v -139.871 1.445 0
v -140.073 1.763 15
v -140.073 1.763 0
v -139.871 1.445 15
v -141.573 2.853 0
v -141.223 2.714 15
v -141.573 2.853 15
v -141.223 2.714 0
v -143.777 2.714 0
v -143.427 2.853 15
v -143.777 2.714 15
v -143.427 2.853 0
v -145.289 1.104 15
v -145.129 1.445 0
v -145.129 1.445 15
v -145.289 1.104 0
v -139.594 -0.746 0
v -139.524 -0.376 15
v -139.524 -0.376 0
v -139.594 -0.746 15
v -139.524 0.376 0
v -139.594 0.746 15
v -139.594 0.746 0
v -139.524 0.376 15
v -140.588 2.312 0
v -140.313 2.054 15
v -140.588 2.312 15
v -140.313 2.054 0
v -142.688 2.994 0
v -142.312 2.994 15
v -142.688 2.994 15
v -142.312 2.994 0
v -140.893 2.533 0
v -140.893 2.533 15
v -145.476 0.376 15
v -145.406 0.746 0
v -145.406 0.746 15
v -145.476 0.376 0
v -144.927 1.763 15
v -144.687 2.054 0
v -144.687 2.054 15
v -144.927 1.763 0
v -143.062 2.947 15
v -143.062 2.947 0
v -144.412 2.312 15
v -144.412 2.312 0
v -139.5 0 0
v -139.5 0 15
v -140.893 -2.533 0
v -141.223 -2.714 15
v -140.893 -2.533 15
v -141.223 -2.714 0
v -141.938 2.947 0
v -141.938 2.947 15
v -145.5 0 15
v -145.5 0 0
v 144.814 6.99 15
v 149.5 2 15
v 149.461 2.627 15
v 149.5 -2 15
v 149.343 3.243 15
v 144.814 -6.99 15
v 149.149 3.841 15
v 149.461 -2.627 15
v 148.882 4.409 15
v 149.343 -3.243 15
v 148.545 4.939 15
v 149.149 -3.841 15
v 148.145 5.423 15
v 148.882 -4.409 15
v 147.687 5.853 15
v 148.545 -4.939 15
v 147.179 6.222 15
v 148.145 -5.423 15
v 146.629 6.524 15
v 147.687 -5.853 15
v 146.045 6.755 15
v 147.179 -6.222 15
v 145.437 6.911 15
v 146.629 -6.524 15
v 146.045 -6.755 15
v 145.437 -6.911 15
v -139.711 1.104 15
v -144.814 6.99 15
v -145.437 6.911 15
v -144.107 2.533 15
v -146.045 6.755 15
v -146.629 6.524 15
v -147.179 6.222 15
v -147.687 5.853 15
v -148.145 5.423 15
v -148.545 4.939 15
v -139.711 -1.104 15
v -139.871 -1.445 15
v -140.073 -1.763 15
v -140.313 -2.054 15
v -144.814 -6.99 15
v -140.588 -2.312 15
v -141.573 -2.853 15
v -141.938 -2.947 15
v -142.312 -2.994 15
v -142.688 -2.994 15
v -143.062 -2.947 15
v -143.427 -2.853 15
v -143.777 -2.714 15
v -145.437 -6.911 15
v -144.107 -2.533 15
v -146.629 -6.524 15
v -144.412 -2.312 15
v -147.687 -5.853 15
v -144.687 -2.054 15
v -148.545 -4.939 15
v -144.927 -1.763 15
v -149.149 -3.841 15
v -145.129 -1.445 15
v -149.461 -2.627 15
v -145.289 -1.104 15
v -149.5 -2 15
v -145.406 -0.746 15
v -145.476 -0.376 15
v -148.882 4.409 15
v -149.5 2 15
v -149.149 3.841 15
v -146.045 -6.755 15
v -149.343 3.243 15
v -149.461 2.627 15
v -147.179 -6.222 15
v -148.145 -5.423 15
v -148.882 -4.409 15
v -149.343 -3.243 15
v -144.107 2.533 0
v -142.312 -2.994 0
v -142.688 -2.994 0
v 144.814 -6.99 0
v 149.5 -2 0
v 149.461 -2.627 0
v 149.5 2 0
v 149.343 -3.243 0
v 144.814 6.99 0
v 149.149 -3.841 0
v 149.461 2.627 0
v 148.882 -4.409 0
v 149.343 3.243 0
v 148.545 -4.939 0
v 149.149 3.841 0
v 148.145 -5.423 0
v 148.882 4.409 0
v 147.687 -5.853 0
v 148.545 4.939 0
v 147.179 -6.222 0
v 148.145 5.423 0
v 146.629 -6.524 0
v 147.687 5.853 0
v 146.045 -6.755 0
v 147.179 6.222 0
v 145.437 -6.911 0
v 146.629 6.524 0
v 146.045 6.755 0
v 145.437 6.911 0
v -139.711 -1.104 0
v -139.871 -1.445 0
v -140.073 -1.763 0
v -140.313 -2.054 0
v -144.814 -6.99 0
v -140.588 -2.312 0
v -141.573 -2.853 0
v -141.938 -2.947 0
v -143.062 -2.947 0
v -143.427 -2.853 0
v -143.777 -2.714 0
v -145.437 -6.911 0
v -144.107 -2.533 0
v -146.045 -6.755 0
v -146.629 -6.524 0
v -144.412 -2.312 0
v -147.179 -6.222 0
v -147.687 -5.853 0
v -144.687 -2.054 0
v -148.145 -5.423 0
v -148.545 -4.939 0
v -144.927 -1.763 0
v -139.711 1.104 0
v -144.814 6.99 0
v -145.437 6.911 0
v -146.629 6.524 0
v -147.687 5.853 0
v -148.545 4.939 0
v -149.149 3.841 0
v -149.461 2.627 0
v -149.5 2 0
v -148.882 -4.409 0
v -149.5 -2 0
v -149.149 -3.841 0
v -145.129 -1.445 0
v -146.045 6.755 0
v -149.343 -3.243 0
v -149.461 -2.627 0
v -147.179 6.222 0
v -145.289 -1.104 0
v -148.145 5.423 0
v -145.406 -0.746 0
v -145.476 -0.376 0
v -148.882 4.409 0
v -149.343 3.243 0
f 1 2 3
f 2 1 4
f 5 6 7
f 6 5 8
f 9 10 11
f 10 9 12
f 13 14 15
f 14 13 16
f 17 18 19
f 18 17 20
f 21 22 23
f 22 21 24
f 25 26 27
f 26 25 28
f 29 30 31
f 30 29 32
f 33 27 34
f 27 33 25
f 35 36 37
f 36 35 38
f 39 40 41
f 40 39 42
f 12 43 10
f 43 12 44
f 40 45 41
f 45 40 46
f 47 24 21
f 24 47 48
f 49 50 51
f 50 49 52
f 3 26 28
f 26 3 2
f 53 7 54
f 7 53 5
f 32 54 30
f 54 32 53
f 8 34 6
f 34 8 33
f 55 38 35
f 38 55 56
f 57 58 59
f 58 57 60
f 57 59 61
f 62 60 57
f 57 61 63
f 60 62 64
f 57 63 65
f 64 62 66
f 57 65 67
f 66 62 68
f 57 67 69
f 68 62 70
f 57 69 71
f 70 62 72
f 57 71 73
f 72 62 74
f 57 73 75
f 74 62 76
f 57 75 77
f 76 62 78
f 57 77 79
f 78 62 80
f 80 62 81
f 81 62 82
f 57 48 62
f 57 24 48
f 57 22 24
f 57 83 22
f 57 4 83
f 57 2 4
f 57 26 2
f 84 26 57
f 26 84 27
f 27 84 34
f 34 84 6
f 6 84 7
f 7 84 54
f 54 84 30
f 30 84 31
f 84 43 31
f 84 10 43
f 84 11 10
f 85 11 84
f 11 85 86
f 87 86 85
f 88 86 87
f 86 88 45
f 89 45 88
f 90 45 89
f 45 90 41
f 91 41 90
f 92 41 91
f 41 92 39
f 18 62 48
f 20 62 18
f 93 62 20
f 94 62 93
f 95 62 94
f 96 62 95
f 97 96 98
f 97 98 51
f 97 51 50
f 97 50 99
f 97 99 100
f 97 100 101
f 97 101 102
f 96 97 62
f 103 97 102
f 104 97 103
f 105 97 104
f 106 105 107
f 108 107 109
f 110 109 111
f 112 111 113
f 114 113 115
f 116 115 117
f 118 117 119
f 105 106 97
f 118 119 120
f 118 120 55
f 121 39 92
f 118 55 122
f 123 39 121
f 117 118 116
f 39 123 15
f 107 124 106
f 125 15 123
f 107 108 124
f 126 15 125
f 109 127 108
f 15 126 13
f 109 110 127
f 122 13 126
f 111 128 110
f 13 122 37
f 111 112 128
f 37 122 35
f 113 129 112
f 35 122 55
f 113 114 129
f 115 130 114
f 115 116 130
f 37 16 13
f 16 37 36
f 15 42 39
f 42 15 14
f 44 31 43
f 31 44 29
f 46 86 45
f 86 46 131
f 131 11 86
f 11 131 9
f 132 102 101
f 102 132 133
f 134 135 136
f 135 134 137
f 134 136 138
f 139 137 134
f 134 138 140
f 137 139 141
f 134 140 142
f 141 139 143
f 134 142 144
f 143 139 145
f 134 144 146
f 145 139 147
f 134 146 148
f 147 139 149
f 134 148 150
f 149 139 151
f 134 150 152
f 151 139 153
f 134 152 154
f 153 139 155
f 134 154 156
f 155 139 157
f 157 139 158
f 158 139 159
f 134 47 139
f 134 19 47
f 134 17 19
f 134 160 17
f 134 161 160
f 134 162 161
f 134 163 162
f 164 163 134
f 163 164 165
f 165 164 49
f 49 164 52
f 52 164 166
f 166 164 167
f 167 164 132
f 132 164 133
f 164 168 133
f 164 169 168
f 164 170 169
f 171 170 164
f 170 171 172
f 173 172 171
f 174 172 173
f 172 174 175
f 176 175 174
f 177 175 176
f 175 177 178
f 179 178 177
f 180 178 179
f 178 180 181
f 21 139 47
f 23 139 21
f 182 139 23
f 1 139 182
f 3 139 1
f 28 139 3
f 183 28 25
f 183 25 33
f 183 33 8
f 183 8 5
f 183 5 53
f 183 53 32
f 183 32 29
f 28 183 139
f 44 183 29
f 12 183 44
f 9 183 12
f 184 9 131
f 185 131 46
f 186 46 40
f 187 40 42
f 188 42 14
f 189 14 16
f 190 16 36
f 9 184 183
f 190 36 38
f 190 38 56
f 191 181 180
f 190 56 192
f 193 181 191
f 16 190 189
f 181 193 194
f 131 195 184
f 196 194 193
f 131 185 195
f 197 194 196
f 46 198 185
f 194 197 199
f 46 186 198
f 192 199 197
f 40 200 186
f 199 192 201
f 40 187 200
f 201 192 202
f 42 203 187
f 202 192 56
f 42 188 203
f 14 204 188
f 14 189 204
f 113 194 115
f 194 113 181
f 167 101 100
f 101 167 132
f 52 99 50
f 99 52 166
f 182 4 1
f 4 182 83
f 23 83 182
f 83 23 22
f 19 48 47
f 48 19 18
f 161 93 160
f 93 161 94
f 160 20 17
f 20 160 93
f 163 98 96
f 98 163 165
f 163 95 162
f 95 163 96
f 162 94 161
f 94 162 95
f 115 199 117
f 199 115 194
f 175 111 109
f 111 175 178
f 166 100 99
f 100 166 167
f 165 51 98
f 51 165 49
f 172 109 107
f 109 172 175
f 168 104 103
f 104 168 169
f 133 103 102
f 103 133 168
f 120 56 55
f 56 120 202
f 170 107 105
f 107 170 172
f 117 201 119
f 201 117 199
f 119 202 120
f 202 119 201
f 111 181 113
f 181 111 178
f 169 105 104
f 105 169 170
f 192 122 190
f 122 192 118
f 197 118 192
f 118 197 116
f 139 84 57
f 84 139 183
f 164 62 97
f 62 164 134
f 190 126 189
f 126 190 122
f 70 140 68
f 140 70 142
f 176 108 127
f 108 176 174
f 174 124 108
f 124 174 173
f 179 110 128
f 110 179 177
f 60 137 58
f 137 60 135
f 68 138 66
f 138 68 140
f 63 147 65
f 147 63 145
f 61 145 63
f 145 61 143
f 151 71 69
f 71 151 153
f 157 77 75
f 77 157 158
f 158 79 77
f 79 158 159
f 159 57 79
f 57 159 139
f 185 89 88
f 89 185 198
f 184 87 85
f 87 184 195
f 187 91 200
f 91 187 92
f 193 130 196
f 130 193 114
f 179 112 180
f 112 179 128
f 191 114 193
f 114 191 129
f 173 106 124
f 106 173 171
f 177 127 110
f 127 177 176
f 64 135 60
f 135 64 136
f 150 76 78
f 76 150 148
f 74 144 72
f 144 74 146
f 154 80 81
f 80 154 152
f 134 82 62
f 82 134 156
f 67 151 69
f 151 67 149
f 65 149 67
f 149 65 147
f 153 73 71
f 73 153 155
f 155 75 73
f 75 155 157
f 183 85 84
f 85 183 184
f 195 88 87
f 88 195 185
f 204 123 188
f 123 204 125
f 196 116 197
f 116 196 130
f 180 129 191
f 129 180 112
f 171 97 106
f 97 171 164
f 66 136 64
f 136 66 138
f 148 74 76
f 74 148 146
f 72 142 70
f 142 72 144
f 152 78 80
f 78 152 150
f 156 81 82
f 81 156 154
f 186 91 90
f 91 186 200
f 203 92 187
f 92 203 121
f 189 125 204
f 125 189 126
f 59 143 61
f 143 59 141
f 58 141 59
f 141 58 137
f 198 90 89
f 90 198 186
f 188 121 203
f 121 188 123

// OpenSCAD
$fn = 50;


difference() {
	union() {
		hull() {
			translate(v = [-144.5000000000, 2.0000000000, 0]) {
				cylinder(h = 15, r = 5);
			}
			translate(v = [144.5000000000, 2.0000000000, 0]) {
				cylinder(h = 15, r = 5);
			}
			translate(v = [-144.5000000000, -2.0000000000, 0]) {
				cylinder(h = 15, r = 5);
			}
			translate(v = [144.5000000000, -2.0000000000, 0]) {
				cylinder(h = 15, r = 5);
			}
		}
	}
	union() {
		translate(v = [-142.5000000000, 0.0000000000, 0]) {
			cylinder(h = 15, r = 3.0000000000);
		}
		translate(v = [-142.5000000000, 0.0000000000, 0]) {
			cylinder(h = 15, r = 1.5000000000);
		}
		translate(v = [-142.5000000000, 0.0000000000, 0]) {
			cylinder(h = 15, r = 1.5000000000);
		}
		translate(v = [-142.5000000000, 0.0000000000, 0]) {
			cylinder(h = 15, r = 1.5000000000);
		}
	}
}
